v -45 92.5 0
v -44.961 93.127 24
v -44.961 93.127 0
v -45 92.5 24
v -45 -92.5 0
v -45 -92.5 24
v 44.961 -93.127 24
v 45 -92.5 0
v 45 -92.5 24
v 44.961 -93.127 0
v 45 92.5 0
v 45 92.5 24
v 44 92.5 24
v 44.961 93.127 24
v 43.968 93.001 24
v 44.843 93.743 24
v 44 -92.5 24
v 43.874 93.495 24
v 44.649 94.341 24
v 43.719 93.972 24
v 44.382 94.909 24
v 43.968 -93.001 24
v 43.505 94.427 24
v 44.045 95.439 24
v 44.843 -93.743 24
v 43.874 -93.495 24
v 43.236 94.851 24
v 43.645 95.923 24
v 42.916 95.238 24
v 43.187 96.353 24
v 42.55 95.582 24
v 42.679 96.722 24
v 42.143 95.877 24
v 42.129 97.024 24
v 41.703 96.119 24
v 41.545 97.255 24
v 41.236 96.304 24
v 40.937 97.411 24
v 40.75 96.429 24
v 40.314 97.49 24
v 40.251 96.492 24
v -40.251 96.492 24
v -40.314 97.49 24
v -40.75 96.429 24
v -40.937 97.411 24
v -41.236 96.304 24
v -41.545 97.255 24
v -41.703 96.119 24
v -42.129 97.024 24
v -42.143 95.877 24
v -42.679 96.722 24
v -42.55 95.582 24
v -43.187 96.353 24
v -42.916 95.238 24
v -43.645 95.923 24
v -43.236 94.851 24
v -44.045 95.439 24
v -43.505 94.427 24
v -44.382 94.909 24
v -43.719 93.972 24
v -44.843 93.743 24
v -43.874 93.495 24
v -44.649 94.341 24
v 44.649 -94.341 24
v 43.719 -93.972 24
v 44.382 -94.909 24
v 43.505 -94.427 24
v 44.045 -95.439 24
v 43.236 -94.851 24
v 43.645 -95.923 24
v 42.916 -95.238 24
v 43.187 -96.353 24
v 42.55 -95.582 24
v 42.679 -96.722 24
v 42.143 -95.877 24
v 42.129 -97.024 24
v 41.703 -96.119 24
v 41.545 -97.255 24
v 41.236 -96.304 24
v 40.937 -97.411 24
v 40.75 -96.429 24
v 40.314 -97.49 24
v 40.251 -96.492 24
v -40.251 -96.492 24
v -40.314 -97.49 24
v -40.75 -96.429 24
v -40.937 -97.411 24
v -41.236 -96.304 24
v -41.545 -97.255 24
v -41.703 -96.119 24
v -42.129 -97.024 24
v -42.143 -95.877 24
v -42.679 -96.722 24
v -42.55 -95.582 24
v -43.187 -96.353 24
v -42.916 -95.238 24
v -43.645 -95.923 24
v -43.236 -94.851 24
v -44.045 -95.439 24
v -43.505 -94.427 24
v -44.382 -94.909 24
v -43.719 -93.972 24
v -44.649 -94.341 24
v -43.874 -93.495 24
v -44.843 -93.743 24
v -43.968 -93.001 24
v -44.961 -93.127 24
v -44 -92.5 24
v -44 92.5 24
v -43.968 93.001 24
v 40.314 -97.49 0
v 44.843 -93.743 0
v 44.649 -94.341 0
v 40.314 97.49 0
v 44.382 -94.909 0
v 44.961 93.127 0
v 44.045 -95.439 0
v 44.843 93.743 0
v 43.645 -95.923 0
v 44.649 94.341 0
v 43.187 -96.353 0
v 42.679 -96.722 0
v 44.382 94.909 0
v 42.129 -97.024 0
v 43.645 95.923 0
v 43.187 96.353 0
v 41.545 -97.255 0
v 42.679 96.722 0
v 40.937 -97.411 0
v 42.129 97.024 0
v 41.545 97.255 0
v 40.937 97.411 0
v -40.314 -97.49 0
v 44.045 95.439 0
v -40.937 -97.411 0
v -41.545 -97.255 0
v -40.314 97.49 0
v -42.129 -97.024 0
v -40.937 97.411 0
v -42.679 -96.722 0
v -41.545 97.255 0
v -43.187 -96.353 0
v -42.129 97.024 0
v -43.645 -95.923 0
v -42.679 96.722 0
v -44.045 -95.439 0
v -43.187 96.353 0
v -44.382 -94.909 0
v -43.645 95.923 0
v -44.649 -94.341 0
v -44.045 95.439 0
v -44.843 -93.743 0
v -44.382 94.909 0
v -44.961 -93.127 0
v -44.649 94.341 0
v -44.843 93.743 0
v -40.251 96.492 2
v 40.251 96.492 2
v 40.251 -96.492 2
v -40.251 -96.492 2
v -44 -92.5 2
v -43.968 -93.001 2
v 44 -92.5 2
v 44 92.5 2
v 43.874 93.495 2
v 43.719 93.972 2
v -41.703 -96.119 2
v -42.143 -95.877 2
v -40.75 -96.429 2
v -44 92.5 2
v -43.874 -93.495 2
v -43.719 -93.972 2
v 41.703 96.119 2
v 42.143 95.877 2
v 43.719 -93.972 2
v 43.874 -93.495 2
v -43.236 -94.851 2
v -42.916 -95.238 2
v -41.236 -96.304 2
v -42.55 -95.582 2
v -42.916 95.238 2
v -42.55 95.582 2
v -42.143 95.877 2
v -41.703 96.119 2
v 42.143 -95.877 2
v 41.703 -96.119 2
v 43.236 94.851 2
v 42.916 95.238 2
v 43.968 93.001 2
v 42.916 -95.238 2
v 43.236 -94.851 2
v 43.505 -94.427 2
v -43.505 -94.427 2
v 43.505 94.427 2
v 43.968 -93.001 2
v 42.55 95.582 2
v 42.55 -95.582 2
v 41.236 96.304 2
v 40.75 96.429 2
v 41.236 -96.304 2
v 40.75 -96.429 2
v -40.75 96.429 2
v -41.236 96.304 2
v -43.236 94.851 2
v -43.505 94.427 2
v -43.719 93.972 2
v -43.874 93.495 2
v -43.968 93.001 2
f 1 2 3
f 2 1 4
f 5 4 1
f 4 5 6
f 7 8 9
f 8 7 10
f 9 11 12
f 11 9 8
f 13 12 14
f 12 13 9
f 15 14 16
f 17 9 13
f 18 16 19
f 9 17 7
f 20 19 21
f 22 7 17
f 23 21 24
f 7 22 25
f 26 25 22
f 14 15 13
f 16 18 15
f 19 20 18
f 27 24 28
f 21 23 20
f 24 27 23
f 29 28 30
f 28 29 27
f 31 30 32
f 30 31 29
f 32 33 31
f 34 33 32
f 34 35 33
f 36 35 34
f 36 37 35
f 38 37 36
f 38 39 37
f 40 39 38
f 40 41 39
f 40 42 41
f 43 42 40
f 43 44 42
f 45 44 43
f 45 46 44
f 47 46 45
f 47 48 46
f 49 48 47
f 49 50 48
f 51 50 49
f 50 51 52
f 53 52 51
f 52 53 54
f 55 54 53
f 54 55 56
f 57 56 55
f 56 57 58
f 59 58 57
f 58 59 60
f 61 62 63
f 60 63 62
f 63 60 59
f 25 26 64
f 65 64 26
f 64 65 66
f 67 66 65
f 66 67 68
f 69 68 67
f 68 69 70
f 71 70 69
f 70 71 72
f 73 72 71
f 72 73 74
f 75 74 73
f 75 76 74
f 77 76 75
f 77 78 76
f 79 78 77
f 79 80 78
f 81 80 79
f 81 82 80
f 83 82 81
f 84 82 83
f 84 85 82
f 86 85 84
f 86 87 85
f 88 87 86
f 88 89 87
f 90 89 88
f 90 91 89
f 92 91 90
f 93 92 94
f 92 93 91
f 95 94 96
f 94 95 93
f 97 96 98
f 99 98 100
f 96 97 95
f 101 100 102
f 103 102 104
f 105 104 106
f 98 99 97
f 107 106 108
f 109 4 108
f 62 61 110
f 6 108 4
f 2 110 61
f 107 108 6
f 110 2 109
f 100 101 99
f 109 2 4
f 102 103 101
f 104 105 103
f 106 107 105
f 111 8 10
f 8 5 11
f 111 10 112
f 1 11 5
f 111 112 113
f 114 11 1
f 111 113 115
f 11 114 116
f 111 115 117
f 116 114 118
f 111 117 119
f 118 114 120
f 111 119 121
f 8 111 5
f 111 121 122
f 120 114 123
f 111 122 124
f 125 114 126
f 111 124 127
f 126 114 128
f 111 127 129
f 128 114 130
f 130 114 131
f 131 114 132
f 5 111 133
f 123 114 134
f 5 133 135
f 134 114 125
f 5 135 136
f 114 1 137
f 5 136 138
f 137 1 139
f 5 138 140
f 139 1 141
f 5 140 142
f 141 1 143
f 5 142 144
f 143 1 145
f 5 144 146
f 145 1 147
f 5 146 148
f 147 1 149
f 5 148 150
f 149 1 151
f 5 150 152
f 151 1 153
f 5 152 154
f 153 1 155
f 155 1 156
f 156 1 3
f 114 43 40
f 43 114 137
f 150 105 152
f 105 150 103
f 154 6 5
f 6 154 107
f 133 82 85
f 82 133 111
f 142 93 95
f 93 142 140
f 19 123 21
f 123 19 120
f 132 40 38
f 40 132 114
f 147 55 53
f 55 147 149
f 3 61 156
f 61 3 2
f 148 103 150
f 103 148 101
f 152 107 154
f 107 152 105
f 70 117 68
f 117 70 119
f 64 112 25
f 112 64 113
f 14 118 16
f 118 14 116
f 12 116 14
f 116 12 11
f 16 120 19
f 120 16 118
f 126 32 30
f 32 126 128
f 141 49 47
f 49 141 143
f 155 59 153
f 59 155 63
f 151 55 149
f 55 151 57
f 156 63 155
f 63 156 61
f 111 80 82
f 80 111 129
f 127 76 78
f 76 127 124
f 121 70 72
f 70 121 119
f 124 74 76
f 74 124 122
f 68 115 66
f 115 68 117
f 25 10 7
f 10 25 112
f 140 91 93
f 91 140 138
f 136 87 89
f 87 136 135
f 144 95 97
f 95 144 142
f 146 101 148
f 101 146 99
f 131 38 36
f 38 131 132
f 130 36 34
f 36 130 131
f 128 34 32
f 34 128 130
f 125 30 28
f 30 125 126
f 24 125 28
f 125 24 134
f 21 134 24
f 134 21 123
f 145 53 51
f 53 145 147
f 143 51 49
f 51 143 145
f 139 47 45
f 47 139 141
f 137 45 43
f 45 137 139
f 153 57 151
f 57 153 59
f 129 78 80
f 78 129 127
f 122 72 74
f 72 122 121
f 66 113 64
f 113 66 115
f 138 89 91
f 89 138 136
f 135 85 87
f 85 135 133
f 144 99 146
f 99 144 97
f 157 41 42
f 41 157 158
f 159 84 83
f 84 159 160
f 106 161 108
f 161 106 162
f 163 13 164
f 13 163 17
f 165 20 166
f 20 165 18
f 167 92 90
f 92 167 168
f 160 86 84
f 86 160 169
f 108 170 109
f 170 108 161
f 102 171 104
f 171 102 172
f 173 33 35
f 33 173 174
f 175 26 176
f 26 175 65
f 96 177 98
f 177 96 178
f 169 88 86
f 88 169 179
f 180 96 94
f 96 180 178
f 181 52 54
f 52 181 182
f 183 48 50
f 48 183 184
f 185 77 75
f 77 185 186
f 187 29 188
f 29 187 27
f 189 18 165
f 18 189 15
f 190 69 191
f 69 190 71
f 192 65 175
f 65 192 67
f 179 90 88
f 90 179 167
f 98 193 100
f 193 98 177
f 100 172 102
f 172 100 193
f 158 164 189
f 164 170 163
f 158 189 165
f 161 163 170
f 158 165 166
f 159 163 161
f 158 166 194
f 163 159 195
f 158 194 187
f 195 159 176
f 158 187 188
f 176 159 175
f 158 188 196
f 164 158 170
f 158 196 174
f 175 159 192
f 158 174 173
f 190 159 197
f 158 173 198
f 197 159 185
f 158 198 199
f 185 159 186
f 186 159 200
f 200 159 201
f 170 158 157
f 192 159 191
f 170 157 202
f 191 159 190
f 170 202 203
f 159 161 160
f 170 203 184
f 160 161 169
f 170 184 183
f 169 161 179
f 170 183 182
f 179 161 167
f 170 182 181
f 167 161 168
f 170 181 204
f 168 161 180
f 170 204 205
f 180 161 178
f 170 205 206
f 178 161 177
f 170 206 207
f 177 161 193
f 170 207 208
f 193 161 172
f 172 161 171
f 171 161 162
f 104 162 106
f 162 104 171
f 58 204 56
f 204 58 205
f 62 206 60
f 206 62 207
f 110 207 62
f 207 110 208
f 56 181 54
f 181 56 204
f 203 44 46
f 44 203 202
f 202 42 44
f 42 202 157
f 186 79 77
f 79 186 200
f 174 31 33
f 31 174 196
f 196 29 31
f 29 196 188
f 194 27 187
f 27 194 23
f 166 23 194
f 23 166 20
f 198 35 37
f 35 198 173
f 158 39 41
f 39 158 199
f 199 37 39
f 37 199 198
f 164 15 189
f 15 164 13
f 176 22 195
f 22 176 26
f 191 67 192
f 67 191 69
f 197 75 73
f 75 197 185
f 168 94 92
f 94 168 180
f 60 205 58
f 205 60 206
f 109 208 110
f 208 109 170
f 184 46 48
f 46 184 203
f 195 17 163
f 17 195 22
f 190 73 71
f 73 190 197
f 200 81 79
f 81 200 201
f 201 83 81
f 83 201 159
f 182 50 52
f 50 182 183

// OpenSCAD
$fn = 50;


difference() {
	union() {
		hull() {
			translate(v = [-40.0000000000, 92.5000000000, 0]) {
				cylinder(h = 24, r = 5);
			}
			translate(v = [40.0000000000, 92.5000000000, 0]) {
				cylinder(h = 24, r = 5);
			}
			translate(v = [-40.0000000000, -92.5000000000, 0]) {
				cylinder(h = 24, r = 5);
			}
			translate(v = [40.0000000000, -92.5000000000, 0]) {
				cylinder(h = 24, r = 5);
			}
		}
	}
	union() {
		translate(v = [0, 0, 2]) {
			hull() {
				translate(v = [-40.0000000000, 92.5000000000, 0]) {
					cylinder(h = 22, r = 4);
				}
				translate(v = [40.0000000000, 92.5000000000, 0]) {
					cylinder(h = 22, r = 4);
				}
				translate(v = [-40.0000000000, -92.5000000000, 0]) {
					cylinder(h = 22, r = 4);
				}
				translate(v = [40.0000000000, -92.5000000000, 0]) {
					cylinder(h = 22, r = 4);
				}
			}
		}
	}
}
